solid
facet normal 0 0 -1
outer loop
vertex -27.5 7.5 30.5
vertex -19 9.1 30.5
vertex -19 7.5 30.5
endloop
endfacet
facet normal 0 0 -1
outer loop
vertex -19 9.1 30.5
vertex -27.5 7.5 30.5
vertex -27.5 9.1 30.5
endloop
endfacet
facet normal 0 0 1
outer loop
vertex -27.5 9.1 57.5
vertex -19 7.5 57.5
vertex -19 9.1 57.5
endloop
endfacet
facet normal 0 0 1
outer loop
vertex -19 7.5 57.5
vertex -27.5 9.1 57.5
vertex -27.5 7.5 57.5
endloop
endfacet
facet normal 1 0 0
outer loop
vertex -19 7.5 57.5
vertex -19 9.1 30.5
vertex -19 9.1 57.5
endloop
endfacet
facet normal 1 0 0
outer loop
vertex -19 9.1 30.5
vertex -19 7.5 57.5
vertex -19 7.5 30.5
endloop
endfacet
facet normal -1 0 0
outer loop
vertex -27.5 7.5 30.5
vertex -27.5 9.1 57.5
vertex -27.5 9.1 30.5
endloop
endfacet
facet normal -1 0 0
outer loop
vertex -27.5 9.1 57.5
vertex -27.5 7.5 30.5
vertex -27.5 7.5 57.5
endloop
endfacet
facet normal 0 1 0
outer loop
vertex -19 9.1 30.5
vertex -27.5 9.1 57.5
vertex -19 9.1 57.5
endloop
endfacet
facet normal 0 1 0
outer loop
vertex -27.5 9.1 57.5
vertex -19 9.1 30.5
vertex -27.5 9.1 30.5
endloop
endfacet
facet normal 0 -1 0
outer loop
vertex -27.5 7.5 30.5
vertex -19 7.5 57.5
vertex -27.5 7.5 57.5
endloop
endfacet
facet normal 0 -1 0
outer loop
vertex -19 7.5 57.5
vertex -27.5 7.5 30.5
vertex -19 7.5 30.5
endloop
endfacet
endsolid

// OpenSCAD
// file: D:/Projects/assembly-workshop/outputs/Screen_Pi_Hue_SCR5-H8_2026-10-31/checks/geometry.scad
// SCR5-G; mm; FRONT view: X right, Z up, Y into rack. Glass/plate front Y=0.
// Measured values: work/screen-5in/Dimensions.md. Physical fit/strength UNKNOWN.
part="plate";
DROP=0.45; // coupon winner can be substituted here; all three pins use this DROP
LIP=0.8; LIP_ON=true;
LIP_EDGES=[true,true,false,false]; // left,right,bottom,top; Brian: side lips only, cosmetic
FRAME_STEP=1.5; // measured glass-edge inset to metal LCD frame, left/right only
SHIM=0; // moves rear frame seat and plate-boss mating face back
$fn=48;
GCX=33; GCZ=41.5; PW=252; PH=88.8; PT=4;
GW=120.7; GH=77.2; CLEAR=0.2; WW=GW+2*CLEAR; WH=GH+2*CLEAR;
SEAT=13.3+SHIM; FT=3;
SO=[56.45,34]; BTN_X=[45.5,35.5,25.5];
PCB_TOP=38; GAP=0.10; LEAF_T=0.8;
HOLE=[3.4,40.3,44.7];
BX=[GCX-68,GCX+68]; BZ=[10,72];
// DSI connector X extent is unmeasured: conservative assumed 8 mm inward from PCB edge.
DSI=[GCX-60.5,9.1,GCZ-38+30,8,5.25,21];
module xz(y,d){translate([0,y+d,0])rotate([90,0,0])linear_extrude(d)children();}
// rr/rack_slots copied from SCR5-F; same exact slot centres, outline shifted -0.05 Z to centre 44.4.
module rr(w,h,r){hull()for(x=[-w/2+r,w/2-r],z=[-h/2+r,h/2-r])translate([x,z])circle(r=r);}
module rack_slots(){for(x=[-118.2625,118.2625],z=[6.323,38.127,50.773,82.577])translate([x,z])hull()for(dx=[-1.5,1.5])translate([dx,0])circle(d=7);}
module cyl_y(x,y,z,d,h){translate([x,y,z])rotate([-90,0,0])cylinder(d=d,h=h);}
module window_cut(){
  xz(-0.02,4.04)translate([GCX,GCZ])square([WW,WH],center=true);
  // 0.3 x 45-degree chamfer, square corners, front only.
  translate([GCX,0.3,GCZ])rotate([90,0,0])
    linear_extrude(height=0.3,scale=[(WW+0.6)/WW,(WH+0.6)/WH])square([WW,WH],center=true);
}
module lips(){
  // Cosmetic side ledges only; rear frame/standoffs set depth and retain the screen.
  if(LIP_ON)for(i=[0:3])if(LIP_EDGES[i]){
    if(i<2)translate([GCX+(i==0?-WW/2:WW/2-LIP),2.5,GCZ-GH/2+4])cube([LIP,0.8,GH-8]);
    else translate([GCX-GW/2+4,2.5,GCZ+(i==2?-WH/2:WH/2-LIP)])cube([GW-8,0.8,LIP]);
  }
}
// Leaf/nub/bump geometry copied from SCR5-WP-A, translated to this glass centre.
module leaves(){for(x=BTN_X)translate([GCX+x-1.5,0,GCZ]){
  translate([0,0,PCB_TOP+GAP+0.9+0.1])cube([3,11.8,LEAF_T]);
  translate([0,10.2,PCB_TOP+GAP])cube([3,1.4,1.0+LEAF_T/2]);
  translate([0,10.4,PCB_TOP+GAP+1.0+LEAF_T])cube([3,1.0,0.9]);
}}
module plate(){difference(){union(){
  difference(){xz(0,PT)translate([0,PH/2])rr(PW,PH,2.5);window_cut();}
  for(x=BX,z=BZ)cyl_y(x,3.9,z,8,SEAT-3.9);
  leaves(); lips();
 }
 xz(-0.02,4.04)rack_slots();
 for(x=BTN_X)translate([GCX+x-HOLE[0]/2,-0.02,GCZ+HOLE[1]])cube([HOLE[0],SEAT+FT+0.04,HOLE[2]-HOLE[1]]);
 // Printed-in screw pilots (no heat-set OD assumption): nominal M2.5, fit UNKNOWN.
 for(x=BX,z=BZ)cyl_y(x,SEAT-6,z,2.1,6.02);
 // Rear engraving, 0.5 deep, left field.
 xz(3.5,0.52)translate([-75,40])mirror([1,0])text("SCR5-G",size=6,halign="center",font="Liberation Sans:style=Bold");
}}
module frame_blank(){
  // C-shaped perimeter; no material across the board centre / touch FPC.
  xz(SEAT,FT)translate([GCX,GCZ])difference(){square([132,76],center=true);square([116,60],center=true);}
  for(sx=[-1,1],sz=[-1,1])cyl_y(GCX+sx*SO[0],SEAT,GCZ+sz*SO[1],9,FT);
  for(x=BX,z=BZ)hull(){cyl_y(x,SEAT,z,8,FT);cyl_y(GCX+(x<GCX?-62:62),SEAT,z,8,FT);}
}
module dsi_keepout(){translate([DSI[0]-3,DSI[1]-3,DSI[2]-3])cube([DSI[3]+6,DSI[4]+6,DSI[5]+6]);}
module ribbon_route(){
  // Open left/up corridor 18 mm wide; extends past top of plate.
  translate([GCX-84,6.1,GCZ-11])cube([18,24,65]);
  translate([GCX-84,6.1,GCZ-11])cube([32,24,27]);
}
module frame(){difference(){frame_blank();dsi_keepout();ribbon_route();
 for(sx=[-1,1],sz=[-1,1])cyl_y(GCX+sx*SO[0],SEAT-0.02,GCZ+sz*SO[1],2.8,FT+0.04);
 for(x=BX,z=BZ)cyl_y(x,SEAT-0.02,z,2.8,FT+0.04);
}}
// Pin polygon/cap/notch/dot design copied unchanged from SCR5-WP-A.
module pin(d,dots){s=2*d+0.5;difference(){union(){
 translate([-1.5,0,0])rotate([90,0,90])linear_extrude(3)polygon([
 [-s-0.02,40.5],[10.2,40.5],[10.2,41.0],[11.5,41.0],[11.5+2*d,41.0-d],[15,41.0-d],[15,44.5],[-s-0.02,44.5]]);
 translate([-2.5,-s-1.5,39.6])cube([5,1.5,5.8]);
 }for(i=[0:dots-1])translate([(i-(dots-1)/2)*1.4,-s-1.5-0.01,43.5])rotate([-90,0,0])cylinder(d=0.9,h=0.4);}}
module placed_pin(i){translate([GCX+BTN_X[i],0,GCZ])pin(DROP,i+1);}
// Measured layers: cover glass 0.9 + second glass 1.6, metal frame 3.0,
// open gap 2.0, PCB 1.6. Metal frame inset ~1.5 at LEFT/RIGHT only.
// PCB centred under glass and full metal-frame top/bottom extent remain UNKNOWN.
module glass(){translate([GCX-GW/2,0,GCZ-GH/2])cube([GW,2.5,GH]);}
module lcd(){
  translate([GCX-GW/2+FRAME_STEP,2.5,GCZ-GH/2])cube([GW-2*FRAME_STEP,3.0,GH]);
}
module pcb(){translate([GCX-60.5,7.5,GCZ-38])cube([121,1.6,76]);}
module standoffs(){for(sx=[-1,1],sz=[-1,1])difference(){cyl_y(GCX+sx*SO[0],9.1,GCZ+sz*SO[1],5.5,4.2);cyl_y(GCX+sx*SO[0],9.08,GCZ+sz*SO[1],2.5,4.24);}}
module buttons(){for(x=BTN_X){
 translate([GCX+x-3.5,9.1,GCZ+38-3.4])cube([7,3.6,2.4]);
 translate([GCX+x-1.5,9.1,GCZ+37])cube([3,3.6,1]);
}}
module dsi(){translate([DSI[0],DSI[1],DSI[2]])cube([DSI[3],DSI[4],DSI[5]]);}
module touch(){translate([GCX-10,9.1,GCZ-5])cube([20,2,10]);} // lateral extent unmeasured
module dummy(){glass();lcd();pcb();standoffs();buttons();dsi();touch();}
module assembly(){color("gray")plate();color("orange")frame();for(i=[0:2])color("cyan")placed_pin(i);color([0.2,0.3,0.4,0.4])dummy();}
// main file
include <D:/Projects/assembly-workshop/outputs/Screen_Pi_Hue_SCR5-H8_2026-10-31/checks/geometry.scad>
intersection(){pcb();ribbon_route();}
